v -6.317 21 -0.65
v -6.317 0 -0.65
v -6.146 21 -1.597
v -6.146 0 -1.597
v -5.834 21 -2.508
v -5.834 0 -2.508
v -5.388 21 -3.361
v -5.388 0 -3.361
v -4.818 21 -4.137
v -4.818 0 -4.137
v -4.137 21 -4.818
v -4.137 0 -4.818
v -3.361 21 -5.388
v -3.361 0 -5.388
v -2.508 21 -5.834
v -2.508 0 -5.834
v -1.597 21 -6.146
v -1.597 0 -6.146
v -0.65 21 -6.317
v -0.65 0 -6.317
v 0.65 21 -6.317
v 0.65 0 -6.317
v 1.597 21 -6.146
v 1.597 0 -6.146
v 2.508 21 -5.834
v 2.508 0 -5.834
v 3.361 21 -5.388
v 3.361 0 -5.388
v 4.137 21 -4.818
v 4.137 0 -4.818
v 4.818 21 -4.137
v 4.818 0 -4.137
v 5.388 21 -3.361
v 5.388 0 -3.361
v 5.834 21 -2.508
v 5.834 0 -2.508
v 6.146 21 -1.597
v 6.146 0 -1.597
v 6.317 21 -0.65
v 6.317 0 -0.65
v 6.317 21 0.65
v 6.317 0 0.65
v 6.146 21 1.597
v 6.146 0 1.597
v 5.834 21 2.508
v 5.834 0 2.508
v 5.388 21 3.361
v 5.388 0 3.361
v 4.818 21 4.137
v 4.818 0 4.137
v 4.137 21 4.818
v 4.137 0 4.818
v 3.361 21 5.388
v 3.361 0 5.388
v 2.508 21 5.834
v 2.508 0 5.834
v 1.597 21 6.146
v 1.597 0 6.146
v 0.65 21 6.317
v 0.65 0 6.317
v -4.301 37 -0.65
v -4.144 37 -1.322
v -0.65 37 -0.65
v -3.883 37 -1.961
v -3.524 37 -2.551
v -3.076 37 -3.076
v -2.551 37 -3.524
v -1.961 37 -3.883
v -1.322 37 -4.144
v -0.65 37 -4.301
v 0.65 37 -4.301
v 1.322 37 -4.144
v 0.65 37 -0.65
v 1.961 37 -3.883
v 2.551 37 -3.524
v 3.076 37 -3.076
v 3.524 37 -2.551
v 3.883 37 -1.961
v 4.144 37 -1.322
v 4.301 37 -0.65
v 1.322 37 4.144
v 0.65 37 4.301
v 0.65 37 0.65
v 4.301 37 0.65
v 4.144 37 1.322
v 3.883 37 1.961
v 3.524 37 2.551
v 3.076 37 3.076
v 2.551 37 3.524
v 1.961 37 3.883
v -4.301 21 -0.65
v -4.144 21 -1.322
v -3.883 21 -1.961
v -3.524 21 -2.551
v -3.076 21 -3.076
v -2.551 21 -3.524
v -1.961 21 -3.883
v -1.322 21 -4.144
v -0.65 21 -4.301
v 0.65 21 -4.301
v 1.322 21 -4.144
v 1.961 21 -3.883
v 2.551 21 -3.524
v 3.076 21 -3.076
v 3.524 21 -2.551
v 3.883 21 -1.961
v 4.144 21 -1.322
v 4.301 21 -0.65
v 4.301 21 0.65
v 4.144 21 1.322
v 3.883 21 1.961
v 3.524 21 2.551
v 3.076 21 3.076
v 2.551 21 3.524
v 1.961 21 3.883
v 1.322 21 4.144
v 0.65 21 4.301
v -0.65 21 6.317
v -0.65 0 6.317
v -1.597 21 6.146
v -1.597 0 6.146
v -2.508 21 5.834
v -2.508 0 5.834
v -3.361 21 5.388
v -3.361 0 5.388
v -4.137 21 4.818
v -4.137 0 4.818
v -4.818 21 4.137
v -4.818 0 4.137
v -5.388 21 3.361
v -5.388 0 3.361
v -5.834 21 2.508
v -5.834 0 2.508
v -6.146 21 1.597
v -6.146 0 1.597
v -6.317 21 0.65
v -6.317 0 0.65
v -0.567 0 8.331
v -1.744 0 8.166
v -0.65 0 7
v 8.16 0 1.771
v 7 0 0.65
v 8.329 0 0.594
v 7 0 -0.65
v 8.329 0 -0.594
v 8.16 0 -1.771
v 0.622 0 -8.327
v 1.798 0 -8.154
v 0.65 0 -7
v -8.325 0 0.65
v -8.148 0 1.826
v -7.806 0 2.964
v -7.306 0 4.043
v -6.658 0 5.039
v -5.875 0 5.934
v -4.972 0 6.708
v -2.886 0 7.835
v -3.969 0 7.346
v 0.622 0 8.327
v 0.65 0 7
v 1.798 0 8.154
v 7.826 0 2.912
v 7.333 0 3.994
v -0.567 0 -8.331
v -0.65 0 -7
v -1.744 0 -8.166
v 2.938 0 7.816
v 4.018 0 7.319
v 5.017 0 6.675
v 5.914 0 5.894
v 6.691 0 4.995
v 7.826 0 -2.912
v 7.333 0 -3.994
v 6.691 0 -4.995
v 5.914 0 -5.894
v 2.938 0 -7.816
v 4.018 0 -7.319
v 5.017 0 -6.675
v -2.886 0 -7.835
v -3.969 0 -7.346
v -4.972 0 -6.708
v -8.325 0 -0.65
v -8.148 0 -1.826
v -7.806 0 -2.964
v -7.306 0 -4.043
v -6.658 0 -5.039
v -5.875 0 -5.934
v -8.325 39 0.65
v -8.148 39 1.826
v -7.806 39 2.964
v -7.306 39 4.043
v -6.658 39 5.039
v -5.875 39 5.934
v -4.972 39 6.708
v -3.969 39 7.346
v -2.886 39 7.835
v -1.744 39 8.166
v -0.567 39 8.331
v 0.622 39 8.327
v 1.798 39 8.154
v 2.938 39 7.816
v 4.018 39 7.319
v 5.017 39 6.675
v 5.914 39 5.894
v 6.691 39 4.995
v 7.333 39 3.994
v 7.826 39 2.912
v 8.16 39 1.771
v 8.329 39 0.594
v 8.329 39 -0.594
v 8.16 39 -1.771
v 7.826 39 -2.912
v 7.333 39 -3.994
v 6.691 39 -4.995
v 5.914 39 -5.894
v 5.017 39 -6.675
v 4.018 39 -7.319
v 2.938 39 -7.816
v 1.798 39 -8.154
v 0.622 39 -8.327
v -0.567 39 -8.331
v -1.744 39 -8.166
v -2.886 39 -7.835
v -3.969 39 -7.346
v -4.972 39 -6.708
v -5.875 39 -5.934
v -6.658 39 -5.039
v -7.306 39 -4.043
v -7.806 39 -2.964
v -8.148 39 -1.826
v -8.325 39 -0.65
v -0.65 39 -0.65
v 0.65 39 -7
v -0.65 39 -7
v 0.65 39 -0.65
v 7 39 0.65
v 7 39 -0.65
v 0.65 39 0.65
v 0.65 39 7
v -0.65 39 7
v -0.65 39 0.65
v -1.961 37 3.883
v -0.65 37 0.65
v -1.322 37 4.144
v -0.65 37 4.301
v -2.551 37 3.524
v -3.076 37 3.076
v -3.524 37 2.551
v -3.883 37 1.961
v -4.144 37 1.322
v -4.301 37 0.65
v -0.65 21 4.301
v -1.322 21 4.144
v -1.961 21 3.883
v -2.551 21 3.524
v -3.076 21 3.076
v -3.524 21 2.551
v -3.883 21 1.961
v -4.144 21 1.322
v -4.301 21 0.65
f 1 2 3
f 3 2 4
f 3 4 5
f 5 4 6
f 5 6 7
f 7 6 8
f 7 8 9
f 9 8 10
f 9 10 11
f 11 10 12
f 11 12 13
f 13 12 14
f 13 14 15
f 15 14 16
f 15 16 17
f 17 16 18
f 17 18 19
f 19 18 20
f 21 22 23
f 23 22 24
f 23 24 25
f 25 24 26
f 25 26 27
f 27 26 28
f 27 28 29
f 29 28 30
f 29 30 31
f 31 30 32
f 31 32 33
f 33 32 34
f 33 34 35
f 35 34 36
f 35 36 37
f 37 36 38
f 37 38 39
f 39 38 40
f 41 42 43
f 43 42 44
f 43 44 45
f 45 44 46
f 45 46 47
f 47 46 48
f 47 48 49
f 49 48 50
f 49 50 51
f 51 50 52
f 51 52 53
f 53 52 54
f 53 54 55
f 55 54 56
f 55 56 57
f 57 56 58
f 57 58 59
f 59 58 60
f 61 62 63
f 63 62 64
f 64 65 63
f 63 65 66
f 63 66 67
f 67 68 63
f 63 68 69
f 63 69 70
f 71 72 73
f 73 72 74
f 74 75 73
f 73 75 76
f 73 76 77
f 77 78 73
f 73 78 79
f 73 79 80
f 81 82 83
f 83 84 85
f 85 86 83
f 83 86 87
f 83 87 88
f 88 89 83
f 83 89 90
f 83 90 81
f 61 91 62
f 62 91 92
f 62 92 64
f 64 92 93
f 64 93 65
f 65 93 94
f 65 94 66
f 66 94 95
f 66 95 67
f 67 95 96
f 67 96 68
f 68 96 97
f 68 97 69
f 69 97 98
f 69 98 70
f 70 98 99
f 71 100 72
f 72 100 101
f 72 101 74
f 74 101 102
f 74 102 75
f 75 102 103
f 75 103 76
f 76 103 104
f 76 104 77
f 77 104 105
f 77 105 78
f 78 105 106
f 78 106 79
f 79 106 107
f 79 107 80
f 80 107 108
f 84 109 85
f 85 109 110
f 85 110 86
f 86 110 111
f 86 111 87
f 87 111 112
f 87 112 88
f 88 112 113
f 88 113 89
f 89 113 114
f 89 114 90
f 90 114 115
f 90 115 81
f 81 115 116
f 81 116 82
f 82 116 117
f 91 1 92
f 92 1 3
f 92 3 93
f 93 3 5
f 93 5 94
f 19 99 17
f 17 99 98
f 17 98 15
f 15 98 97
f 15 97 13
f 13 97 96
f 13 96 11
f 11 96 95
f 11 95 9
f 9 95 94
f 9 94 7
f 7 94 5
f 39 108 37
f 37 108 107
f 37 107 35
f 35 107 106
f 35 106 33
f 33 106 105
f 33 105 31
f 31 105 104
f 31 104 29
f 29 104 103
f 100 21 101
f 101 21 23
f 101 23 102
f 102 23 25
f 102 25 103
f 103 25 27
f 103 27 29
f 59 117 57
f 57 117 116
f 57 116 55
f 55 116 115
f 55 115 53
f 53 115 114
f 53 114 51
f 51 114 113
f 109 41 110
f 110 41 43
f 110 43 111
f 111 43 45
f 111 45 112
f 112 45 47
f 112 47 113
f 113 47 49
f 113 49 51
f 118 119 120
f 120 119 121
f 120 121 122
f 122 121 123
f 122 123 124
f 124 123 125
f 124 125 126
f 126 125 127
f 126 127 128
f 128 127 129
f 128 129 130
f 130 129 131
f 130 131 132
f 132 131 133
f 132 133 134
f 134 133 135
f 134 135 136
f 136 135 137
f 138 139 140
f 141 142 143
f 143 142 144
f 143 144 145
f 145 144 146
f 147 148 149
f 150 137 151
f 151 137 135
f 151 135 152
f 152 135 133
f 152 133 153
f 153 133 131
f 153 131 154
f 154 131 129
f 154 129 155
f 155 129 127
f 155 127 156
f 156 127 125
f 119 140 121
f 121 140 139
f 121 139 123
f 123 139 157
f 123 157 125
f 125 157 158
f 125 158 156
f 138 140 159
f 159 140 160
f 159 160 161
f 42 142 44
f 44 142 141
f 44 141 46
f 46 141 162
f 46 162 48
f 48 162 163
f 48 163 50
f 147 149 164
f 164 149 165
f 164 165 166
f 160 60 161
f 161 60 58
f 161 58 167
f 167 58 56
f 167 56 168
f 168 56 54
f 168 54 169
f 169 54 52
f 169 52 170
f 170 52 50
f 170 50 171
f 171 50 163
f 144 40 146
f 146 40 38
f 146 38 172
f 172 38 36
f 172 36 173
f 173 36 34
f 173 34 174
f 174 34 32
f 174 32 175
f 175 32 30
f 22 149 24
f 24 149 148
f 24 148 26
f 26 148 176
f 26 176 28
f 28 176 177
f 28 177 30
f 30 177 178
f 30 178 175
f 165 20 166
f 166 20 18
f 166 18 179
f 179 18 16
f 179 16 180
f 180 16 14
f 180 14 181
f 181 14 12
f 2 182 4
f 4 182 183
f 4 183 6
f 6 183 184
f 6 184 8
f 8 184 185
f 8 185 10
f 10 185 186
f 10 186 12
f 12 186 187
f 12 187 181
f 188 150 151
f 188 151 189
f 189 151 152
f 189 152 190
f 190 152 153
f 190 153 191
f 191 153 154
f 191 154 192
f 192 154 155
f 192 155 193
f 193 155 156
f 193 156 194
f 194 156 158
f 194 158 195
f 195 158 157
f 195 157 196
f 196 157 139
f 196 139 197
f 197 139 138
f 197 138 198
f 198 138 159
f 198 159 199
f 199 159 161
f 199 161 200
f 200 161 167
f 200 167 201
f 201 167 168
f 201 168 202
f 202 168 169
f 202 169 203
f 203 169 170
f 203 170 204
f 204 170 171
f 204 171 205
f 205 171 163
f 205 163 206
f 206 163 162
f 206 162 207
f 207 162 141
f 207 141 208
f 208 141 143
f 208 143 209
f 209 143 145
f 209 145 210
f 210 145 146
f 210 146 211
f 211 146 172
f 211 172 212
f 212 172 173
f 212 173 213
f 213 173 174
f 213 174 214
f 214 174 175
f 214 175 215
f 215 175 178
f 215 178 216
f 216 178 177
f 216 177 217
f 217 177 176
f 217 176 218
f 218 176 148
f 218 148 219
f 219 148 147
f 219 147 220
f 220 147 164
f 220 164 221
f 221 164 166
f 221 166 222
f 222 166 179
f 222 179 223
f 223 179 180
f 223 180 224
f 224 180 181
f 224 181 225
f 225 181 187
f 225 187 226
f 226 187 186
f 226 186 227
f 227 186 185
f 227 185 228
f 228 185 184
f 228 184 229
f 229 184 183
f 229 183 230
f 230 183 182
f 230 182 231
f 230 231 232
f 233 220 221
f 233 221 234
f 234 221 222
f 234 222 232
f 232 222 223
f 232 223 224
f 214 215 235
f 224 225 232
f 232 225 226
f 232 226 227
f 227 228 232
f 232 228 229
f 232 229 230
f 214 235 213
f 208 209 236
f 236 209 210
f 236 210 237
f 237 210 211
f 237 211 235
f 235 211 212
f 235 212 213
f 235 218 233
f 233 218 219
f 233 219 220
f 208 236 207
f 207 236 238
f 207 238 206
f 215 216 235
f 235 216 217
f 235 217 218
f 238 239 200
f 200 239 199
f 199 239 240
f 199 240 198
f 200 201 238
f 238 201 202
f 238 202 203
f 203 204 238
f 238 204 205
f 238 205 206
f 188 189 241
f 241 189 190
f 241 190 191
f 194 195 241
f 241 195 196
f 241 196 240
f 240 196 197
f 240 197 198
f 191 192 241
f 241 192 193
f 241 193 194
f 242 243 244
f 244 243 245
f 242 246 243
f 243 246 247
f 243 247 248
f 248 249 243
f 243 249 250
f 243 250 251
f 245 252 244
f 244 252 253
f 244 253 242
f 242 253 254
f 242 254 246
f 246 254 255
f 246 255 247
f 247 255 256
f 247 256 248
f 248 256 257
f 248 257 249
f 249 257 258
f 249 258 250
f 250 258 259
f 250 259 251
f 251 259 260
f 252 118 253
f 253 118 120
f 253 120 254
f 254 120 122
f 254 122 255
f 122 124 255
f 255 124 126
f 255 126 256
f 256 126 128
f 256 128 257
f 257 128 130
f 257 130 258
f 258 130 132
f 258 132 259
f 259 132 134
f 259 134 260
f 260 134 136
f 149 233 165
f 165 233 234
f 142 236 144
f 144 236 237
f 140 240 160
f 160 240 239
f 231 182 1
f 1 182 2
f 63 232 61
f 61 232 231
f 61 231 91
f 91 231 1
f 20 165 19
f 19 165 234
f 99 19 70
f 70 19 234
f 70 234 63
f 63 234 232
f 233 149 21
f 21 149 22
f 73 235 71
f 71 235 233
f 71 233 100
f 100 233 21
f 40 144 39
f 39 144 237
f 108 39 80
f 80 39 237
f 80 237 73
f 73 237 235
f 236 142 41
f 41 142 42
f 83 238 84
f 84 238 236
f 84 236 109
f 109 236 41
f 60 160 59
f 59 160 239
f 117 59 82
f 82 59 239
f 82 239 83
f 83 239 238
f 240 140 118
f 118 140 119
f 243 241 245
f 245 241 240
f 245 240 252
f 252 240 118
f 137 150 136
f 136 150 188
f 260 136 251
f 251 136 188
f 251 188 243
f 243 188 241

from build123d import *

# Parameters (mm, degrees)
CUT_EXTRUDE1_DEPTH      = 1
CUT_EXTRUDE1_DEPTH_BACK = 40


with BuildPart() as part:
    # Sketch1 → Revolve1 (revolve)
    with BuildSketch(Plane.XY):
        Polygon((-6.35, 0), (-8.35, 0), (-8.35, 39), (0, 39), (0, 37), (-4.35, 37), (-4.35, 21), (-6.35, 21), align=None)
    revolve(axis=Axis((0, 0, 0), (0, 1, 0)))

    # Sketch2 → Cut-Extrude1 (cut, two sides)
    with BuildSketch(Plane(origin=(0, 39, 0), x_dir=(1, 0, 0), z_dir=(0, 1, 0))) as cut_extrude1_sk:
        Polygon((-0.65, 0.65), (-7, 0.65), (-11.662246707, 0.65), (-11.662246707, -0.65), (-7, -0.65), (-0.65, -0.65), (-0.65, -7), (0.65, -7), (0.65, -0.65), (7, -0.65), (7, 0.65), (0.65, 0.65), (0.65, 7), (-0.65, 7), align=None)
    extrude(amount=CUT_EXTRUDE1_DEPTH, mode=Mode.SUBTRACT)
    extrude(cut_extrude1_sk.sketch, amount=-CUT_EXTRUDE1_DEPTH_BACK, mode=Mode.SUBTRACT)


solid = part.part
